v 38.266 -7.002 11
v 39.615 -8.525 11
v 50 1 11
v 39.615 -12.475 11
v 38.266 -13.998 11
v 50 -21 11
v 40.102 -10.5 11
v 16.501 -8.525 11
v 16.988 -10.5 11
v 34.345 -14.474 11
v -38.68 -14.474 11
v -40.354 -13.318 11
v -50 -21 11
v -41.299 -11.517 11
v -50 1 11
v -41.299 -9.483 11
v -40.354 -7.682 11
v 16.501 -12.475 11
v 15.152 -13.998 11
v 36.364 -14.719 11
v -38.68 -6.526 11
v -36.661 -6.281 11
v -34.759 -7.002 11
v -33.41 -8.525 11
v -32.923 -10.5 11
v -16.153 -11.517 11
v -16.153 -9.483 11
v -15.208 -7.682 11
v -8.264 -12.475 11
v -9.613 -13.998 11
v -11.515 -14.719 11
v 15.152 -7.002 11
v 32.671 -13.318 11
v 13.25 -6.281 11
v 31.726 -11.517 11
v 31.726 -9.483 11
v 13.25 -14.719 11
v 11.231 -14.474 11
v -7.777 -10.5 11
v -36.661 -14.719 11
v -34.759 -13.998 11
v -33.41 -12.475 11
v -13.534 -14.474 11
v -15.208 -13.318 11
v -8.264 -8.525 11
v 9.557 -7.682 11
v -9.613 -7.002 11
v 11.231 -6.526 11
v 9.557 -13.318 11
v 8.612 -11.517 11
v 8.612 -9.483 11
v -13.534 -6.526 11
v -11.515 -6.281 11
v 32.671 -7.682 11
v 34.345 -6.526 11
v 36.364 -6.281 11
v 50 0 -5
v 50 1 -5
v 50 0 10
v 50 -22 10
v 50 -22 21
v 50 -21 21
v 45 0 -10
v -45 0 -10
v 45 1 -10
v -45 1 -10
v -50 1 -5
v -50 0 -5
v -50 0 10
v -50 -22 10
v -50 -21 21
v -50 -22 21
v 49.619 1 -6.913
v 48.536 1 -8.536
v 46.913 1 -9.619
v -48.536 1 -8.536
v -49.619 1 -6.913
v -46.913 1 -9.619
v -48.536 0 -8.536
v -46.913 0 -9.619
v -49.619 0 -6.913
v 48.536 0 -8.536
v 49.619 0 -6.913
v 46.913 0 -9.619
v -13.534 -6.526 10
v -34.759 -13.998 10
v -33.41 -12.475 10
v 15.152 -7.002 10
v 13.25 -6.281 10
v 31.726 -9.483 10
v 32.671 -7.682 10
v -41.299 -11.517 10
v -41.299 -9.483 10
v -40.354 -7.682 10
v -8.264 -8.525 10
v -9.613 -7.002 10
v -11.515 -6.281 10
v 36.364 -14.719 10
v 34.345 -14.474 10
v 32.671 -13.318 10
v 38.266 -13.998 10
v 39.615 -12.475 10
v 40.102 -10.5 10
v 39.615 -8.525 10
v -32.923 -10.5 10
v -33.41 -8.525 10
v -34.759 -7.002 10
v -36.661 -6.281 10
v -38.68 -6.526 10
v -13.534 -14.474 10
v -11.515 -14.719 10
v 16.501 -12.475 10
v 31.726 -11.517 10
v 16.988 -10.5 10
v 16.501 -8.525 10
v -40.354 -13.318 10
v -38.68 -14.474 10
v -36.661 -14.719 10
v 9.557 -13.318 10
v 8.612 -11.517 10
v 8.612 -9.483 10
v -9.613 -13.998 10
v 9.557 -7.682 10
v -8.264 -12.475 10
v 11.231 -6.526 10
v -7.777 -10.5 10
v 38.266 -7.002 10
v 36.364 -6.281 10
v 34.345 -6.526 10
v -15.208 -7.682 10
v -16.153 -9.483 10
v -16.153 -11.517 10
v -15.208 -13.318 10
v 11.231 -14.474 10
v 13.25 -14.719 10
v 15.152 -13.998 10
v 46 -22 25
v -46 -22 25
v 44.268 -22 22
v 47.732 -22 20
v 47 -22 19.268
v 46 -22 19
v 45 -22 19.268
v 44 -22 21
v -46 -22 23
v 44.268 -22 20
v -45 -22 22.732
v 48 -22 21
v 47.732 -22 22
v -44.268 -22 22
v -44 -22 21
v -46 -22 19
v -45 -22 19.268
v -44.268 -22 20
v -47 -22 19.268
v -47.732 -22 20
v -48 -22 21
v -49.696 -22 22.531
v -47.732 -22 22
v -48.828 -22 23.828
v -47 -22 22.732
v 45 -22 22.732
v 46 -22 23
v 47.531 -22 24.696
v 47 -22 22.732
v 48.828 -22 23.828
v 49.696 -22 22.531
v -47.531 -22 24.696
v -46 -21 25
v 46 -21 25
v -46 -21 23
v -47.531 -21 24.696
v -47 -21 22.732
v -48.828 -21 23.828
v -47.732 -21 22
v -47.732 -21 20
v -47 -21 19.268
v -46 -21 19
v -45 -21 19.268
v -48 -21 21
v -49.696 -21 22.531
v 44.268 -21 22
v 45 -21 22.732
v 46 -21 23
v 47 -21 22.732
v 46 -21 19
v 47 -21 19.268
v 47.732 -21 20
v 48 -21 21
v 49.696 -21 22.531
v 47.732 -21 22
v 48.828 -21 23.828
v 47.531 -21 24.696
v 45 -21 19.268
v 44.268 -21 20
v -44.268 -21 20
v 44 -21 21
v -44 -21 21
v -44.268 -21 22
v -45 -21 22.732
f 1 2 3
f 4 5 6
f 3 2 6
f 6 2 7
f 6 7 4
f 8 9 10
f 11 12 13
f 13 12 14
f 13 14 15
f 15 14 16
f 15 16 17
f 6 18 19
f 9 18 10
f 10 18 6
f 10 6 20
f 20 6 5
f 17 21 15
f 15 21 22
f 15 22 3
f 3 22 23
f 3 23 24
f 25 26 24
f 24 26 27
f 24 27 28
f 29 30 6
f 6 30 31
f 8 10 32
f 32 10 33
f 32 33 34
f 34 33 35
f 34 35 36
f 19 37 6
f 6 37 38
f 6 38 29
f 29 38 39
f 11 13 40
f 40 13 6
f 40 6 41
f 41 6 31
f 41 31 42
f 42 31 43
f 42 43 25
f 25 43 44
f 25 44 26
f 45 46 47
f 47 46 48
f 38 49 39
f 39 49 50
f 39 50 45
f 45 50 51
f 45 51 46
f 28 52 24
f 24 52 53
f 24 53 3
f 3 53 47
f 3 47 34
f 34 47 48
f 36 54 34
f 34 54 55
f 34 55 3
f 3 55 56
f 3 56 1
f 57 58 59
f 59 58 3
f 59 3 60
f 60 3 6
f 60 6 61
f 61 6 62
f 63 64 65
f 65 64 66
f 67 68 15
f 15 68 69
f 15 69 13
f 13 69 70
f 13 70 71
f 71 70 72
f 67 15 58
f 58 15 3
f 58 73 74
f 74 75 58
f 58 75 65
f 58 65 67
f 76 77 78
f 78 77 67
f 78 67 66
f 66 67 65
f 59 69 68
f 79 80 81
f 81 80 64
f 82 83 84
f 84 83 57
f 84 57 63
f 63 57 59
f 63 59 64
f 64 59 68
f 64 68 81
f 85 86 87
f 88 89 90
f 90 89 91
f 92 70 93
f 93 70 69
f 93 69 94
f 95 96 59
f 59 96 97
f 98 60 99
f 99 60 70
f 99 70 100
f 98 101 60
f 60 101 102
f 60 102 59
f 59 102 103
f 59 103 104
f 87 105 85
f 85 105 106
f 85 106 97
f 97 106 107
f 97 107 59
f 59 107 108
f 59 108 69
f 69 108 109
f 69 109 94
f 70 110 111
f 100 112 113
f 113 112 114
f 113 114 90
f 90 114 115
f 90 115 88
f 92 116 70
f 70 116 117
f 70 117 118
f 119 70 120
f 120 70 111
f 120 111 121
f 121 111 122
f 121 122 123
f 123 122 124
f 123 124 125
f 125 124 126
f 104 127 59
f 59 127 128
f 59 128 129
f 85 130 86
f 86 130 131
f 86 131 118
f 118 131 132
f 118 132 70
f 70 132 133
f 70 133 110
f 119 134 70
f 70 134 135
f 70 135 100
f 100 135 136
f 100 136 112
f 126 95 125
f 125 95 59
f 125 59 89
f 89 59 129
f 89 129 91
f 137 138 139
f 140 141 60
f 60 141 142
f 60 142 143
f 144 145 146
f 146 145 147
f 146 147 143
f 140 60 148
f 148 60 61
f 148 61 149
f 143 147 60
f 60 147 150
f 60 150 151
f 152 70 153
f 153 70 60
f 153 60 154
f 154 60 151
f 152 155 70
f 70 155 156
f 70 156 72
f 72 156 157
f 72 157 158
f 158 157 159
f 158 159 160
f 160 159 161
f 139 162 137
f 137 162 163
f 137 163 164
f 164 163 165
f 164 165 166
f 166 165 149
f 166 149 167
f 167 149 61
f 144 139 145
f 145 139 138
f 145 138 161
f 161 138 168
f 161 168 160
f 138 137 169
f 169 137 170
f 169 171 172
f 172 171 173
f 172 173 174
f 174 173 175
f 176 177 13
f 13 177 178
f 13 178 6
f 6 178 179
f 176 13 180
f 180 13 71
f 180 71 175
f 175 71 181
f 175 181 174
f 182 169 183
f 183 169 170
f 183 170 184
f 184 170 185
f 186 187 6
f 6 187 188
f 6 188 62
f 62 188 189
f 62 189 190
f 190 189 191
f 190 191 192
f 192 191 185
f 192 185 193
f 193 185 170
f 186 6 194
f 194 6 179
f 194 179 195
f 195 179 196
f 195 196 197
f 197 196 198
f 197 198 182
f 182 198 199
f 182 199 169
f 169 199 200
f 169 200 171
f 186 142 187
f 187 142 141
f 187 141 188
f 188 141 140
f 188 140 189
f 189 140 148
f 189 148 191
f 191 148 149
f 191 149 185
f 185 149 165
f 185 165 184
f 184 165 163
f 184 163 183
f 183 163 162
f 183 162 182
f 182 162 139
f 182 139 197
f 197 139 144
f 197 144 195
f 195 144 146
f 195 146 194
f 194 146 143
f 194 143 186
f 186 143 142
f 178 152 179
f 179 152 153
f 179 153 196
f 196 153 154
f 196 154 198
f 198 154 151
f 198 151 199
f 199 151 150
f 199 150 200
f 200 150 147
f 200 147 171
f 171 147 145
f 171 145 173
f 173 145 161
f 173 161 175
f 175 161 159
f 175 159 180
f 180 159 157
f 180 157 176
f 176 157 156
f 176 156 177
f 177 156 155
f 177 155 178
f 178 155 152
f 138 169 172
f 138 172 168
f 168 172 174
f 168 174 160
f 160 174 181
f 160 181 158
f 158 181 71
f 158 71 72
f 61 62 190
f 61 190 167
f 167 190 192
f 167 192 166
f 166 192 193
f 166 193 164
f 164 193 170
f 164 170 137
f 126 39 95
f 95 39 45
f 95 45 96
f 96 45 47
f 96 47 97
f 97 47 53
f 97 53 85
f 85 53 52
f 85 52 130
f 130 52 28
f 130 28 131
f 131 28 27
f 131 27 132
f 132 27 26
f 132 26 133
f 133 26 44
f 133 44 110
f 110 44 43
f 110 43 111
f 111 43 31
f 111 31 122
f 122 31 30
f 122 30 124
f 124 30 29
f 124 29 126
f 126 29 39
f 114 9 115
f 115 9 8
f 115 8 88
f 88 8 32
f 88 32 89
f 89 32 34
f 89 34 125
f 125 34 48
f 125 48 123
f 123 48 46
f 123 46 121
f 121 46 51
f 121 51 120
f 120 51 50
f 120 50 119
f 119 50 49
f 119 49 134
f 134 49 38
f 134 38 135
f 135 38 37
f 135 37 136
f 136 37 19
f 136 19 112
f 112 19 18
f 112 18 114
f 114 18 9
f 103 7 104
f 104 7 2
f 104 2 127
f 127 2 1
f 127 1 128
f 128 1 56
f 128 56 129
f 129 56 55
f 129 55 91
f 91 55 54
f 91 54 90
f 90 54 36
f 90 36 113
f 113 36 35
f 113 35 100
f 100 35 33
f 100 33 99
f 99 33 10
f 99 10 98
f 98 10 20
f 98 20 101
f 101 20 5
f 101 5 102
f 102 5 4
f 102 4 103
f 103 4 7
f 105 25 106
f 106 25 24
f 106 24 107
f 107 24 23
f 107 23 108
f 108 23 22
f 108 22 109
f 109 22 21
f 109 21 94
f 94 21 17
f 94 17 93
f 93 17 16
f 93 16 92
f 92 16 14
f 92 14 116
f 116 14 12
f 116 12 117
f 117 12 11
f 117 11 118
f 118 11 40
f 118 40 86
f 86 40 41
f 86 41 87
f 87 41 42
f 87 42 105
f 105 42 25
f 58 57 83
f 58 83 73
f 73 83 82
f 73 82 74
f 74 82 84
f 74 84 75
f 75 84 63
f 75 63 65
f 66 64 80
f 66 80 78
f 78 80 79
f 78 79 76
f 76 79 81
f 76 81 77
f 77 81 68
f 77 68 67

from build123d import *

# Parameters (mm, degrees)
SKETCH1_W           = 100
SKETCH1_H           = 20
BOSS_EXTRUDE1_DEPTH = 1
SKETCH3_W           = 100
SKETCH3_H           = 23
BOSS_EXTRUDE2_DEPTH = 1
SKETCH4_W           = 100
SKETCH4_H           = 14
SKETCH4_R           = 2
BOSS_EXTRUDE3_DEPTH = 1
FILLET1_R           = 4
CUT_EXTRUDE2_REACH  = 60.523
SKETCH6_R           = 4.25
FILLET2_R           = 5


with BuildPart() as part:
    # Sketch1 → Boss-Extrude1 (new body)
    with BuildSketch(Plane(origin=(0, 0, 0), x_dir=(1, 0, 0), z_dir=(0, 1, 0))):
        Rectangle(SKETCH1_W, SKETCH1_H)
    extrude(amount=BOSS_EXTRUDE1_DEPTH)

    # Sketch3 → Boss-Extrude2 (add)
    with BuildSketch(Plane.XY.offset(10)):
        with Locations((0, -10.5)):
            Rectangle(SKETCH3_W, SKETCH3_H)
    extrude(amount=BOSS_EXTRUDE2_DEPTH)

    # Sketch4 → Boss-Extrude3 (add)
    with BuildSketch(Plane.XZ.offset(22)):
        with Locations((0, 18)):
            Rectangle(SKETCH4_W, SKETCH4_H)
        with Locations(Location((46, 21, 0), (0, 0, 270))):
            Circle(SKETCH4_R, mode=Mode.SUBTRACT)
        with Locations(Location((-46, 21, 0), (0, 0, 270))):
            Circle(SKETCH4_R, mode=Mode.SUBTRACT)
    extrude(amount=-BOSS_EXTRUDE3_DEPTH)

    # Fillet1
    fillet1_edges = [part.edges().sort_by_distance(p)[0] for p in [
        (-50, -21.5, 25),
        (50, -21.5, 25),
    ]]
    fillet(fillet1_edges, radius=FILLET1_R)

    # Sketch6 → Cut-Extrude2 (cut, up to next)
    with BuildSketch(Plane.XY.offset(11), mode=Mode.PRIVATE) as cut_extrude2_sk1:
        with Locations((-37.172974346, -10.5)):
            Circle(SKETCH6_R)
    cut_extrude2_tool1 = extrude(cut_extrude2_sk1.sketch, amount=-CUT_EXTRUDE2_REACH, mode=Mode.PRIVATE) & part.part
    # Sketch6 → Cut-Extrude2 (cut, up to next)
    with BuildSketch(Plane.XY.offset(11), mode=Mode.PRIVATE) as cut_extrude2_sk2:
        with Locations((-12.026924054, -10.5)):
            Circle(SKETCH6_R)
    cut_extrude2_tool2 = extrude(cut_extrude2_sk2.sketch, amount=-CUT_EXTRUDE2_REACH, mode=Mode.PRIVATE) & part.part
    # Sketch6 → Cut-Extrude2 (cut, up to next)
    with BuildSketch(Plane.XY.offset(11), mode=Mode.PRIVATE) as cut_extrude2_sk3:
        with Locations((12.738125476, -10.5)):
            Circle(SKETCH6_R)
    cut_extrude2_tool3 = extrude(cut_extrude2_sk3.sketch, amount=-CUT_EXTRUDE2_REACH, mode=Mode.PRIVATE) & part.part
    # Sketch6 → Cut-Extrude2 (cut, up to next)
    with BuildSketch(Plane.XY.offset(11), mode=Mode.PRIVATE) as cut_extrude2_sk4:
        with Locations((35.852171704, -10.5)):
            Circle(SKETCH6_R)
    cut_extrude2_tool4 = extrude(cut_extrude2_sk4.sketch, amount=-CUT_EXTRUDE2_REACH, mode=Mode.PRIVATE) & part.part
    add(cut_extrude2_tool1.solids().sort_by_distance((-37.172974, -10.5, 11))[0], mode=Mode.SUBTRACT)
    add(cut_extrude2_tool2.solids().sort_by_distance((-12.026924, -10.5, 11))[0], mode=Mode.SUBTRACT)
    add(cut_extrude2_tool3.solids().sort_by_distance((12.738125, -10.5, 11))[0], mode=Mode.SUBTRACT)
    add(cut_extrude2_tool4.solids().sort_by_distance((35.852172, -10.5, 11))[0], mode=Mode.SUBTRACT)

    # Fillet2
    fillet2_edges = [part.edges().sort_by_distance(p)[0] for p in [
        (-50, 0.5, -10),
        (50, 0.5, -10),
    ]]
    fillet(fillet2_edges, radius=FILLET2_R)


solid = part.part
